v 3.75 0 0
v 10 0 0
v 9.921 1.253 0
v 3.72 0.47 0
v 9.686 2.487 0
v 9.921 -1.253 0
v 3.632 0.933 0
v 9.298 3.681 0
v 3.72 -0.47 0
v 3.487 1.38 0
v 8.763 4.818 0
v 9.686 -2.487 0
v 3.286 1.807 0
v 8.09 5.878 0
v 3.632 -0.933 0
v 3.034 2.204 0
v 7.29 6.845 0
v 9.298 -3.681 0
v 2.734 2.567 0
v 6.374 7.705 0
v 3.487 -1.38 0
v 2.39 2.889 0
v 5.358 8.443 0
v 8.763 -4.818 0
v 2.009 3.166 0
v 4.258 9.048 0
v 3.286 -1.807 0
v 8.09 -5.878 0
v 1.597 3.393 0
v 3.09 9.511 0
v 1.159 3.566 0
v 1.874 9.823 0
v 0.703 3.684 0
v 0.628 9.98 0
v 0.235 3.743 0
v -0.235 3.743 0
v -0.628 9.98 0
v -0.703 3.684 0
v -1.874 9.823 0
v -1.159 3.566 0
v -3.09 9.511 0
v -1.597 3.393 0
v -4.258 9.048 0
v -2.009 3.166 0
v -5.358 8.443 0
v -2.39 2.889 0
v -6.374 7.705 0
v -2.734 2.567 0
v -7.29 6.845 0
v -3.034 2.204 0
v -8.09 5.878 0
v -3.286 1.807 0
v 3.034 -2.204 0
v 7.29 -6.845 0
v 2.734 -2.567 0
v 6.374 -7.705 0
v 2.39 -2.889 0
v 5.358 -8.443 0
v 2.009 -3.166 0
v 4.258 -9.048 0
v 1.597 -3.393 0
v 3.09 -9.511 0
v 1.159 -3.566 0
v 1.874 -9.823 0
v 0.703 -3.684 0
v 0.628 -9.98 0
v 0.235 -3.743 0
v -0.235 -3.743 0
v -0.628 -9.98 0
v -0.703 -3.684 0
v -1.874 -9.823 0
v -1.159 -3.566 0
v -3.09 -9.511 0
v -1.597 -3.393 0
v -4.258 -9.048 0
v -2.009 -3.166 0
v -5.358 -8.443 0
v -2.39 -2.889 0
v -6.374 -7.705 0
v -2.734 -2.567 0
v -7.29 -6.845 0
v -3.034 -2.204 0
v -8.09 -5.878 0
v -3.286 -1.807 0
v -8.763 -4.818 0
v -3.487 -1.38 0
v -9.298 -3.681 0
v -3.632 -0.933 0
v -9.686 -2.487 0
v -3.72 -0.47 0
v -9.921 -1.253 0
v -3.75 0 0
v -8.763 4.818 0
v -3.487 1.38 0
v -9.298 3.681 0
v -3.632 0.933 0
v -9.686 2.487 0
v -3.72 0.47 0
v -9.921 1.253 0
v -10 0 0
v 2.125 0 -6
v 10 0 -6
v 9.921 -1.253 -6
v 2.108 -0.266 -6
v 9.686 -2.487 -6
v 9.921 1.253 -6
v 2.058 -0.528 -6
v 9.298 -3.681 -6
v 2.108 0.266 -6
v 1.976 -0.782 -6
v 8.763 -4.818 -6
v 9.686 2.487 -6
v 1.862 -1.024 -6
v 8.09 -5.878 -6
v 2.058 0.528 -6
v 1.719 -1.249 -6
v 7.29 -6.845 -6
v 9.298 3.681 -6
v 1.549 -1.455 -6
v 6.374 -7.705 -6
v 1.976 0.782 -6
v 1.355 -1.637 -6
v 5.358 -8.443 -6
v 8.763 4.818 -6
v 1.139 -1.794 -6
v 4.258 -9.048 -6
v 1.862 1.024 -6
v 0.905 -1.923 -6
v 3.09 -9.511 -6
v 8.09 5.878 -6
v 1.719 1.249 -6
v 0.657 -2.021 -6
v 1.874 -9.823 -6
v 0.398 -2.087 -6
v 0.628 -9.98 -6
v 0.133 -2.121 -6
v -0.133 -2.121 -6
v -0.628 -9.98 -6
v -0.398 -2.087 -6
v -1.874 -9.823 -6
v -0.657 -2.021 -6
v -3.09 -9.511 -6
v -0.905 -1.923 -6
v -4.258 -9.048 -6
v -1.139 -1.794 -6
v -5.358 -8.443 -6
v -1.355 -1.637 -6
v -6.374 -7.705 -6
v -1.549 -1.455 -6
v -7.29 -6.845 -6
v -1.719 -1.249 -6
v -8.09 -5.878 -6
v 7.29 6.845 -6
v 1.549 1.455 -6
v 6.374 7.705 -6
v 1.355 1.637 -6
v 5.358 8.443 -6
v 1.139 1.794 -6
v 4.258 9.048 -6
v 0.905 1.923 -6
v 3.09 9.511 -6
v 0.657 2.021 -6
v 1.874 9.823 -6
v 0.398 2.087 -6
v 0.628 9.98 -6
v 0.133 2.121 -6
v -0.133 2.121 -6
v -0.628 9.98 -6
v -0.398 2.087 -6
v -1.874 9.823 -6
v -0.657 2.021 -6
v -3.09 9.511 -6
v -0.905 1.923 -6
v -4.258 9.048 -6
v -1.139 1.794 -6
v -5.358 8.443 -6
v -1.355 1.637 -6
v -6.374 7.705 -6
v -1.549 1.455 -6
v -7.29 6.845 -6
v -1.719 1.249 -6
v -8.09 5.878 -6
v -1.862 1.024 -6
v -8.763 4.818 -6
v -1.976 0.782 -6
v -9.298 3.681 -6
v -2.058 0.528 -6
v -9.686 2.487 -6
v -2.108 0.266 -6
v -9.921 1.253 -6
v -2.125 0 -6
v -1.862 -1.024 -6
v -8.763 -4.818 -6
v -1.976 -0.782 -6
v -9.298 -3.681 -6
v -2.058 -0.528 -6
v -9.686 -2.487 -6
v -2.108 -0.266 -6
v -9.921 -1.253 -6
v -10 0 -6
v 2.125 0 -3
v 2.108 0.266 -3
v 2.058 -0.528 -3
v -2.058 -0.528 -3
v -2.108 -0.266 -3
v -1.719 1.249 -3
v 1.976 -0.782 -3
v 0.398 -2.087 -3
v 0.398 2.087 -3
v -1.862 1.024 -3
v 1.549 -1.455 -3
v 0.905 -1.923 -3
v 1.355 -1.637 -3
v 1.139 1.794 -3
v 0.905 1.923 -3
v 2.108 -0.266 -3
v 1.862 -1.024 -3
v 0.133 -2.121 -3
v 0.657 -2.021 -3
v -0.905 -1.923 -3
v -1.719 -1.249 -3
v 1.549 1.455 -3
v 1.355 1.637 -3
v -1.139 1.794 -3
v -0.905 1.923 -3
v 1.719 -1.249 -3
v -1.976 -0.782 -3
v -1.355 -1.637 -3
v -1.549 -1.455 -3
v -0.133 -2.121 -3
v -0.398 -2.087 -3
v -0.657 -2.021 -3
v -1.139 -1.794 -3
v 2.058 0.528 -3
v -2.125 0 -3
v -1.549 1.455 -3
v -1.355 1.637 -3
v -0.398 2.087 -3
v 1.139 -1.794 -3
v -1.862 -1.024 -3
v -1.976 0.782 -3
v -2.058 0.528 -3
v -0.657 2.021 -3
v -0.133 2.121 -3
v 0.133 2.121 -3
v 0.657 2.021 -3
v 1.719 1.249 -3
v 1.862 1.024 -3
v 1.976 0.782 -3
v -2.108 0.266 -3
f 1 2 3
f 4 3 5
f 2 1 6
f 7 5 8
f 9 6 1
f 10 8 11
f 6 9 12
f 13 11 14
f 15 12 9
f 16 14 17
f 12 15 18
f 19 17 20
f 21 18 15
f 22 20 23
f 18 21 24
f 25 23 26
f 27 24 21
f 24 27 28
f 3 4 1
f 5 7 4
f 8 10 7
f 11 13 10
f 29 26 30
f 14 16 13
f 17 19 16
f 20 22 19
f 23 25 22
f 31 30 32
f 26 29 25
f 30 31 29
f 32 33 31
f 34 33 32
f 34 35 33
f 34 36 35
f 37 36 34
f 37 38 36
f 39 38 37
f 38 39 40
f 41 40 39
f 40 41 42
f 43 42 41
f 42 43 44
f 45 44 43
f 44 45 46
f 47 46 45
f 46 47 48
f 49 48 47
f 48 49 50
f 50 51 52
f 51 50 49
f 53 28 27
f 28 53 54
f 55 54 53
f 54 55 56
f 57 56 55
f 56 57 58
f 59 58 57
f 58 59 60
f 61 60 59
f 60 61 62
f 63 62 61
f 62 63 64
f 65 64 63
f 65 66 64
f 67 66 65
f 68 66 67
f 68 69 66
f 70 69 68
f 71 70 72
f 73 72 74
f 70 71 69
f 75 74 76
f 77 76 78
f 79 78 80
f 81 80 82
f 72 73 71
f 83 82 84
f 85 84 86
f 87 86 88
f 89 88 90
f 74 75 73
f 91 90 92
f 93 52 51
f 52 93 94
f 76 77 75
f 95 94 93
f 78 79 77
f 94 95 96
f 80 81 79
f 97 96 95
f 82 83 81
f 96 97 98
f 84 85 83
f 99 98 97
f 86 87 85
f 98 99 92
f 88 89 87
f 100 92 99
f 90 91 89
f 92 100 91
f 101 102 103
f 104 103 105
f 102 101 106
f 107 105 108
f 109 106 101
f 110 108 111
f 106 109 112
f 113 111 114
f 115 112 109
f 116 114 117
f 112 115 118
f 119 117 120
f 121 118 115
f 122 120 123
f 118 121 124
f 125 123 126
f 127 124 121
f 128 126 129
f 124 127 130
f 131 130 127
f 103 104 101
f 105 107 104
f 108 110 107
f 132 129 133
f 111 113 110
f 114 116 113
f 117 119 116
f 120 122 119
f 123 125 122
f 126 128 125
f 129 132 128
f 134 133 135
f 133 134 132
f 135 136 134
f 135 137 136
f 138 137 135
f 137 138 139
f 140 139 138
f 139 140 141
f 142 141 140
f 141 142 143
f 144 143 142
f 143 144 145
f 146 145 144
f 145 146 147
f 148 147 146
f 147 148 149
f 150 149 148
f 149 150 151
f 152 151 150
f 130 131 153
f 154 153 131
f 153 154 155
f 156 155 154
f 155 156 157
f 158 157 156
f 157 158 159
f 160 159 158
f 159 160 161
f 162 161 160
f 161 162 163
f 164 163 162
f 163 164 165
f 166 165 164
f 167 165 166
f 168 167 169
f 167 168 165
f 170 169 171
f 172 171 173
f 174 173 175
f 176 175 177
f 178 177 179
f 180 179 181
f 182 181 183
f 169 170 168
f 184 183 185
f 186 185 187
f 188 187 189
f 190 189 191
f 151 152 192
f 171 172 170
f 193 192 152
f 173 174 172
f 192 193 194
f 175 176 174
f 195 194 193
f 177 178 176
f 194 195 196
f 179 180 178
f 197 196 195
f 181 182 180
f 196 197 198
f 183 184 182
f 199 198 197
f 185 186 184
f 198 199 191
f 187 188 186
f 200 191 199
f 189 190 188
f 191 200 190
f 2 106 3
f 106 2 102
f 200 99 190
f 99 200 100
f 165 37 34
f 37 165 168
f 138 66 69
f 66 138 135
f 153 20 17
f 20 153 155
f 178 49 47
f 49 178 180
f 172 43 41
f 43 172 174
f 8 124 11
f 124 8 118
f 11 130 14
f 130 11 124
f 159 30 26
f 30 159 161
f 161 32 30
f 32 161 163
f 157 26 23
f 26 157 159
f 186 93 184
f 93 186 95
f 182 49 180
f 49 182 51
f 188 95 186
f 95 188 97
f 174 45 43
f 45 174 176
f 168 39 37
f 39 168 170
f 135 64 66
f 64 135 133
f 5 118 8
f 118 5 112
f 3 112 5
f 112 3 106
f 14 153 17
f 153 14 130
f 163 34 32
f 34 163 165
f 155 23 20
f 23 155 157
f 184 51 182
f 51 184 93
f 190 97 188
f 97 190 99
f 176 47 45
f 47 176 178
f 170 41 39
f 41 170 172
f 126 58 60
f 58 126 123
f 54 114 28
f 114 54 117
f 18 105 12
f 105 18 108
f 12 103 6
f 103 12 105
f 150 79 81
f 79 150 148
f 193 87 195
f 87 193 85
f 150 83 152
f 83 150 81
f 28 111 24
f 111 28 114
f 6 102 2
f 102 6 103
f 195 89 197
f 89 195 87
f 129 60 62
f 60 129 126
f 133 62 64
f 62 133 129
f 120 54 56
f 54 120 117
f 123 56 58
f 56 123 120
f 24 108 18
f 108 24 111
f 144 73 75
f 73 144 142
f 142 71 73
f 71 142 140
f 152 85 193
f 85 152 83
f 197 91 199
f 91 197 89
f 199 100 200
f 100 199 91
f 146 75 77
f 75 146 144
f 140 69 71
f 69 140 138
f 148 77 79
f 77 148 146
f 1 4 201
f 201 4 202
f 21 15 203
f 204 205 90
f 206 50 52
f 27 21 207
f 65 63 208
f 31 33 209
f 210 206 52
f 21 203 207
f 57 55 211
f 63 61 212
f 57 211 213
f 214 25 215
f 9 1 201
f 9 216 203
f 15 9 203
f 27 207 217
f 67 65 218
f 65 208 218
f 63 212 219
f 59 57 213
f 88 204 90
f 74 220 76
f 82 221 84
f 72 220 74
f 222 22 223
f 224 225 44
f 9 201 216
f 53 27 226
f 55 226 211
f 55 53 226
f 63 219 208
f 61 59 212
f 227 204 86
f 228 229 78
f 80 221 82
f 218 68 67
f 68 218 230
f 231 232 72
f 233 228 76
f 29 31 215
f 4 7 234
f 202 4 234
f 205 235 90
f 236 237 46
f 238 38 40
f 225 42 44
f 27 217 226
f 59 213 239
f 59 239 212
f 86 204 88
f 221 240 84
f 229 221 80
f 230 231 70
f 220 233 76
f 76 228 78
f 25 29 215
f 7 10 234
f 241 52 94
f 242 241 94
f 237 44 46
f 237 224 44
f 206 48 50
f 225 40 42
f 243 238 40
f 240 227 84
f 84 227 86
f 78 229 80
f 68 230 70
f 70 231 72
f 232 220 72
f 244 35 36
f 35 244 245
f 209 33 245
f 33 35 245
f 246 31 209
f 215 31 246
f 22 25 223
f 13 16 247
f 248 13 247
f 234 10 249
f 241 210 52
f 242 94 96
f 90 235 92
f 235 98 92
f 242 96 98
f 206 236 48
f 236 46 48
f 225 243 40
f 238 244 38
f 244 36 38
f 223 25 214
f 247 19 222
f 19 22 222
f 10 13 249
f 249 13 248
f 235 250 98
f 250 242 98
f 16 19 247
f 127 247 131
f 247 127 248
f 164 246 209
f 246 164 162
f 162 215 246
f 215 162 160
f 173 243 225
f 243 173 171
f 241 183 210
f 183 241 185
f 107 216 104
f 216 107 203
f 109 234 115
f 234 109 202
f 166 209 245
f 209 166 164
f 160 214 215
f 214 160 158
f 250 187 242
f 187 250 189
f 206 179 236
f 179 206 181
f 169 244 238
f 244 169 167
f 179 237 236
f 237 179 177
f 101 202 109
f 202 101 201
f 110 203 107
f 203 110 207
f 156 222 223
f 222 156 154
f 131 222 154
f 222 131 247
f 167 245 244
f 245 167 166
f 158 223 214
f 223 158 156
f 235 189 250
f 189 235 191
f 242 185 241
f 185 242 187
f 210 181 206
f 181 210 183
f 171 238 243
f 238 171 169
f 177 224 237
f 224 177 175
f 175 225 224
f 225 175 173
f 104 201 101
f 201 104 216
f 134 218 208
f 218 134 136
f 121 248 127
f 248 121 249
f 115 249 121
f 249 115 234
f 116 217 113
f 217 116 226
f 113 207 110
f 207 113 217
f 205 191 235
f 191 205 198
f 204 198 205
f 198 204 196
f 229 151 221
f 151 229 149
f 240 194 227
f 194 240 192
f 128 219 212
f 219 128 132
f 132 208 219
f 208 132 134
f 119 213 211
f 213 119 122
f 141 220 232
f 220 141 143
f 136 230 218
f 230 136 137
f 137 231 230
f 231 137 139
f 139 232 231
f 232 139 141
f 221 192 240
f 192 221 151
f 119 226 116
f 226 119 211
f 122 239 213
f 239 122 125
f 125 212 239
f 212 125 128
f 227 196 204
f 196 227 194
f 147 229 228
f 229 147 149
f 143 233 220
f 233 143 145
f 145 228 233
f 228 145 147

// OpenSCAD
$fn = 50;


difference() {
	union() {
		translate(v = [0, 0, -6.0000000000]) {
			cylinder(h = 6, r = 7.0000000000);
		}
		translate(v = [0, 0, -6.0000000000]) {
			cylinder(h = 6, r = 10.0000000000);
		}
	}
	union() {
		translate(v = [0, 0, 0]) {
			rotate(a = [0, 0, 0]) {
				difference() {
					union() {
						#translate(v = [0, 0, -6.0000000000]) {
							cylinder(h = 6, r = 2.0000000000);
						}
						#translate(v = [0, 0, -3]) {
							cylinder(h = 3, r = 7.0000000000, r1 = 2.1250000000, r2 = 3.7500000000);
						}
						#translate(v = [0, 0, -6.0000000000]) {
							cylinder(h = 6, r = 2.1250000000);
						}
						#translate(v = [0, 0, -6.0000000000]) {
							cylinder(h = 6, r = 2.0000000000);
						}
					}
					union();
				}
			}
		}
	}
}
